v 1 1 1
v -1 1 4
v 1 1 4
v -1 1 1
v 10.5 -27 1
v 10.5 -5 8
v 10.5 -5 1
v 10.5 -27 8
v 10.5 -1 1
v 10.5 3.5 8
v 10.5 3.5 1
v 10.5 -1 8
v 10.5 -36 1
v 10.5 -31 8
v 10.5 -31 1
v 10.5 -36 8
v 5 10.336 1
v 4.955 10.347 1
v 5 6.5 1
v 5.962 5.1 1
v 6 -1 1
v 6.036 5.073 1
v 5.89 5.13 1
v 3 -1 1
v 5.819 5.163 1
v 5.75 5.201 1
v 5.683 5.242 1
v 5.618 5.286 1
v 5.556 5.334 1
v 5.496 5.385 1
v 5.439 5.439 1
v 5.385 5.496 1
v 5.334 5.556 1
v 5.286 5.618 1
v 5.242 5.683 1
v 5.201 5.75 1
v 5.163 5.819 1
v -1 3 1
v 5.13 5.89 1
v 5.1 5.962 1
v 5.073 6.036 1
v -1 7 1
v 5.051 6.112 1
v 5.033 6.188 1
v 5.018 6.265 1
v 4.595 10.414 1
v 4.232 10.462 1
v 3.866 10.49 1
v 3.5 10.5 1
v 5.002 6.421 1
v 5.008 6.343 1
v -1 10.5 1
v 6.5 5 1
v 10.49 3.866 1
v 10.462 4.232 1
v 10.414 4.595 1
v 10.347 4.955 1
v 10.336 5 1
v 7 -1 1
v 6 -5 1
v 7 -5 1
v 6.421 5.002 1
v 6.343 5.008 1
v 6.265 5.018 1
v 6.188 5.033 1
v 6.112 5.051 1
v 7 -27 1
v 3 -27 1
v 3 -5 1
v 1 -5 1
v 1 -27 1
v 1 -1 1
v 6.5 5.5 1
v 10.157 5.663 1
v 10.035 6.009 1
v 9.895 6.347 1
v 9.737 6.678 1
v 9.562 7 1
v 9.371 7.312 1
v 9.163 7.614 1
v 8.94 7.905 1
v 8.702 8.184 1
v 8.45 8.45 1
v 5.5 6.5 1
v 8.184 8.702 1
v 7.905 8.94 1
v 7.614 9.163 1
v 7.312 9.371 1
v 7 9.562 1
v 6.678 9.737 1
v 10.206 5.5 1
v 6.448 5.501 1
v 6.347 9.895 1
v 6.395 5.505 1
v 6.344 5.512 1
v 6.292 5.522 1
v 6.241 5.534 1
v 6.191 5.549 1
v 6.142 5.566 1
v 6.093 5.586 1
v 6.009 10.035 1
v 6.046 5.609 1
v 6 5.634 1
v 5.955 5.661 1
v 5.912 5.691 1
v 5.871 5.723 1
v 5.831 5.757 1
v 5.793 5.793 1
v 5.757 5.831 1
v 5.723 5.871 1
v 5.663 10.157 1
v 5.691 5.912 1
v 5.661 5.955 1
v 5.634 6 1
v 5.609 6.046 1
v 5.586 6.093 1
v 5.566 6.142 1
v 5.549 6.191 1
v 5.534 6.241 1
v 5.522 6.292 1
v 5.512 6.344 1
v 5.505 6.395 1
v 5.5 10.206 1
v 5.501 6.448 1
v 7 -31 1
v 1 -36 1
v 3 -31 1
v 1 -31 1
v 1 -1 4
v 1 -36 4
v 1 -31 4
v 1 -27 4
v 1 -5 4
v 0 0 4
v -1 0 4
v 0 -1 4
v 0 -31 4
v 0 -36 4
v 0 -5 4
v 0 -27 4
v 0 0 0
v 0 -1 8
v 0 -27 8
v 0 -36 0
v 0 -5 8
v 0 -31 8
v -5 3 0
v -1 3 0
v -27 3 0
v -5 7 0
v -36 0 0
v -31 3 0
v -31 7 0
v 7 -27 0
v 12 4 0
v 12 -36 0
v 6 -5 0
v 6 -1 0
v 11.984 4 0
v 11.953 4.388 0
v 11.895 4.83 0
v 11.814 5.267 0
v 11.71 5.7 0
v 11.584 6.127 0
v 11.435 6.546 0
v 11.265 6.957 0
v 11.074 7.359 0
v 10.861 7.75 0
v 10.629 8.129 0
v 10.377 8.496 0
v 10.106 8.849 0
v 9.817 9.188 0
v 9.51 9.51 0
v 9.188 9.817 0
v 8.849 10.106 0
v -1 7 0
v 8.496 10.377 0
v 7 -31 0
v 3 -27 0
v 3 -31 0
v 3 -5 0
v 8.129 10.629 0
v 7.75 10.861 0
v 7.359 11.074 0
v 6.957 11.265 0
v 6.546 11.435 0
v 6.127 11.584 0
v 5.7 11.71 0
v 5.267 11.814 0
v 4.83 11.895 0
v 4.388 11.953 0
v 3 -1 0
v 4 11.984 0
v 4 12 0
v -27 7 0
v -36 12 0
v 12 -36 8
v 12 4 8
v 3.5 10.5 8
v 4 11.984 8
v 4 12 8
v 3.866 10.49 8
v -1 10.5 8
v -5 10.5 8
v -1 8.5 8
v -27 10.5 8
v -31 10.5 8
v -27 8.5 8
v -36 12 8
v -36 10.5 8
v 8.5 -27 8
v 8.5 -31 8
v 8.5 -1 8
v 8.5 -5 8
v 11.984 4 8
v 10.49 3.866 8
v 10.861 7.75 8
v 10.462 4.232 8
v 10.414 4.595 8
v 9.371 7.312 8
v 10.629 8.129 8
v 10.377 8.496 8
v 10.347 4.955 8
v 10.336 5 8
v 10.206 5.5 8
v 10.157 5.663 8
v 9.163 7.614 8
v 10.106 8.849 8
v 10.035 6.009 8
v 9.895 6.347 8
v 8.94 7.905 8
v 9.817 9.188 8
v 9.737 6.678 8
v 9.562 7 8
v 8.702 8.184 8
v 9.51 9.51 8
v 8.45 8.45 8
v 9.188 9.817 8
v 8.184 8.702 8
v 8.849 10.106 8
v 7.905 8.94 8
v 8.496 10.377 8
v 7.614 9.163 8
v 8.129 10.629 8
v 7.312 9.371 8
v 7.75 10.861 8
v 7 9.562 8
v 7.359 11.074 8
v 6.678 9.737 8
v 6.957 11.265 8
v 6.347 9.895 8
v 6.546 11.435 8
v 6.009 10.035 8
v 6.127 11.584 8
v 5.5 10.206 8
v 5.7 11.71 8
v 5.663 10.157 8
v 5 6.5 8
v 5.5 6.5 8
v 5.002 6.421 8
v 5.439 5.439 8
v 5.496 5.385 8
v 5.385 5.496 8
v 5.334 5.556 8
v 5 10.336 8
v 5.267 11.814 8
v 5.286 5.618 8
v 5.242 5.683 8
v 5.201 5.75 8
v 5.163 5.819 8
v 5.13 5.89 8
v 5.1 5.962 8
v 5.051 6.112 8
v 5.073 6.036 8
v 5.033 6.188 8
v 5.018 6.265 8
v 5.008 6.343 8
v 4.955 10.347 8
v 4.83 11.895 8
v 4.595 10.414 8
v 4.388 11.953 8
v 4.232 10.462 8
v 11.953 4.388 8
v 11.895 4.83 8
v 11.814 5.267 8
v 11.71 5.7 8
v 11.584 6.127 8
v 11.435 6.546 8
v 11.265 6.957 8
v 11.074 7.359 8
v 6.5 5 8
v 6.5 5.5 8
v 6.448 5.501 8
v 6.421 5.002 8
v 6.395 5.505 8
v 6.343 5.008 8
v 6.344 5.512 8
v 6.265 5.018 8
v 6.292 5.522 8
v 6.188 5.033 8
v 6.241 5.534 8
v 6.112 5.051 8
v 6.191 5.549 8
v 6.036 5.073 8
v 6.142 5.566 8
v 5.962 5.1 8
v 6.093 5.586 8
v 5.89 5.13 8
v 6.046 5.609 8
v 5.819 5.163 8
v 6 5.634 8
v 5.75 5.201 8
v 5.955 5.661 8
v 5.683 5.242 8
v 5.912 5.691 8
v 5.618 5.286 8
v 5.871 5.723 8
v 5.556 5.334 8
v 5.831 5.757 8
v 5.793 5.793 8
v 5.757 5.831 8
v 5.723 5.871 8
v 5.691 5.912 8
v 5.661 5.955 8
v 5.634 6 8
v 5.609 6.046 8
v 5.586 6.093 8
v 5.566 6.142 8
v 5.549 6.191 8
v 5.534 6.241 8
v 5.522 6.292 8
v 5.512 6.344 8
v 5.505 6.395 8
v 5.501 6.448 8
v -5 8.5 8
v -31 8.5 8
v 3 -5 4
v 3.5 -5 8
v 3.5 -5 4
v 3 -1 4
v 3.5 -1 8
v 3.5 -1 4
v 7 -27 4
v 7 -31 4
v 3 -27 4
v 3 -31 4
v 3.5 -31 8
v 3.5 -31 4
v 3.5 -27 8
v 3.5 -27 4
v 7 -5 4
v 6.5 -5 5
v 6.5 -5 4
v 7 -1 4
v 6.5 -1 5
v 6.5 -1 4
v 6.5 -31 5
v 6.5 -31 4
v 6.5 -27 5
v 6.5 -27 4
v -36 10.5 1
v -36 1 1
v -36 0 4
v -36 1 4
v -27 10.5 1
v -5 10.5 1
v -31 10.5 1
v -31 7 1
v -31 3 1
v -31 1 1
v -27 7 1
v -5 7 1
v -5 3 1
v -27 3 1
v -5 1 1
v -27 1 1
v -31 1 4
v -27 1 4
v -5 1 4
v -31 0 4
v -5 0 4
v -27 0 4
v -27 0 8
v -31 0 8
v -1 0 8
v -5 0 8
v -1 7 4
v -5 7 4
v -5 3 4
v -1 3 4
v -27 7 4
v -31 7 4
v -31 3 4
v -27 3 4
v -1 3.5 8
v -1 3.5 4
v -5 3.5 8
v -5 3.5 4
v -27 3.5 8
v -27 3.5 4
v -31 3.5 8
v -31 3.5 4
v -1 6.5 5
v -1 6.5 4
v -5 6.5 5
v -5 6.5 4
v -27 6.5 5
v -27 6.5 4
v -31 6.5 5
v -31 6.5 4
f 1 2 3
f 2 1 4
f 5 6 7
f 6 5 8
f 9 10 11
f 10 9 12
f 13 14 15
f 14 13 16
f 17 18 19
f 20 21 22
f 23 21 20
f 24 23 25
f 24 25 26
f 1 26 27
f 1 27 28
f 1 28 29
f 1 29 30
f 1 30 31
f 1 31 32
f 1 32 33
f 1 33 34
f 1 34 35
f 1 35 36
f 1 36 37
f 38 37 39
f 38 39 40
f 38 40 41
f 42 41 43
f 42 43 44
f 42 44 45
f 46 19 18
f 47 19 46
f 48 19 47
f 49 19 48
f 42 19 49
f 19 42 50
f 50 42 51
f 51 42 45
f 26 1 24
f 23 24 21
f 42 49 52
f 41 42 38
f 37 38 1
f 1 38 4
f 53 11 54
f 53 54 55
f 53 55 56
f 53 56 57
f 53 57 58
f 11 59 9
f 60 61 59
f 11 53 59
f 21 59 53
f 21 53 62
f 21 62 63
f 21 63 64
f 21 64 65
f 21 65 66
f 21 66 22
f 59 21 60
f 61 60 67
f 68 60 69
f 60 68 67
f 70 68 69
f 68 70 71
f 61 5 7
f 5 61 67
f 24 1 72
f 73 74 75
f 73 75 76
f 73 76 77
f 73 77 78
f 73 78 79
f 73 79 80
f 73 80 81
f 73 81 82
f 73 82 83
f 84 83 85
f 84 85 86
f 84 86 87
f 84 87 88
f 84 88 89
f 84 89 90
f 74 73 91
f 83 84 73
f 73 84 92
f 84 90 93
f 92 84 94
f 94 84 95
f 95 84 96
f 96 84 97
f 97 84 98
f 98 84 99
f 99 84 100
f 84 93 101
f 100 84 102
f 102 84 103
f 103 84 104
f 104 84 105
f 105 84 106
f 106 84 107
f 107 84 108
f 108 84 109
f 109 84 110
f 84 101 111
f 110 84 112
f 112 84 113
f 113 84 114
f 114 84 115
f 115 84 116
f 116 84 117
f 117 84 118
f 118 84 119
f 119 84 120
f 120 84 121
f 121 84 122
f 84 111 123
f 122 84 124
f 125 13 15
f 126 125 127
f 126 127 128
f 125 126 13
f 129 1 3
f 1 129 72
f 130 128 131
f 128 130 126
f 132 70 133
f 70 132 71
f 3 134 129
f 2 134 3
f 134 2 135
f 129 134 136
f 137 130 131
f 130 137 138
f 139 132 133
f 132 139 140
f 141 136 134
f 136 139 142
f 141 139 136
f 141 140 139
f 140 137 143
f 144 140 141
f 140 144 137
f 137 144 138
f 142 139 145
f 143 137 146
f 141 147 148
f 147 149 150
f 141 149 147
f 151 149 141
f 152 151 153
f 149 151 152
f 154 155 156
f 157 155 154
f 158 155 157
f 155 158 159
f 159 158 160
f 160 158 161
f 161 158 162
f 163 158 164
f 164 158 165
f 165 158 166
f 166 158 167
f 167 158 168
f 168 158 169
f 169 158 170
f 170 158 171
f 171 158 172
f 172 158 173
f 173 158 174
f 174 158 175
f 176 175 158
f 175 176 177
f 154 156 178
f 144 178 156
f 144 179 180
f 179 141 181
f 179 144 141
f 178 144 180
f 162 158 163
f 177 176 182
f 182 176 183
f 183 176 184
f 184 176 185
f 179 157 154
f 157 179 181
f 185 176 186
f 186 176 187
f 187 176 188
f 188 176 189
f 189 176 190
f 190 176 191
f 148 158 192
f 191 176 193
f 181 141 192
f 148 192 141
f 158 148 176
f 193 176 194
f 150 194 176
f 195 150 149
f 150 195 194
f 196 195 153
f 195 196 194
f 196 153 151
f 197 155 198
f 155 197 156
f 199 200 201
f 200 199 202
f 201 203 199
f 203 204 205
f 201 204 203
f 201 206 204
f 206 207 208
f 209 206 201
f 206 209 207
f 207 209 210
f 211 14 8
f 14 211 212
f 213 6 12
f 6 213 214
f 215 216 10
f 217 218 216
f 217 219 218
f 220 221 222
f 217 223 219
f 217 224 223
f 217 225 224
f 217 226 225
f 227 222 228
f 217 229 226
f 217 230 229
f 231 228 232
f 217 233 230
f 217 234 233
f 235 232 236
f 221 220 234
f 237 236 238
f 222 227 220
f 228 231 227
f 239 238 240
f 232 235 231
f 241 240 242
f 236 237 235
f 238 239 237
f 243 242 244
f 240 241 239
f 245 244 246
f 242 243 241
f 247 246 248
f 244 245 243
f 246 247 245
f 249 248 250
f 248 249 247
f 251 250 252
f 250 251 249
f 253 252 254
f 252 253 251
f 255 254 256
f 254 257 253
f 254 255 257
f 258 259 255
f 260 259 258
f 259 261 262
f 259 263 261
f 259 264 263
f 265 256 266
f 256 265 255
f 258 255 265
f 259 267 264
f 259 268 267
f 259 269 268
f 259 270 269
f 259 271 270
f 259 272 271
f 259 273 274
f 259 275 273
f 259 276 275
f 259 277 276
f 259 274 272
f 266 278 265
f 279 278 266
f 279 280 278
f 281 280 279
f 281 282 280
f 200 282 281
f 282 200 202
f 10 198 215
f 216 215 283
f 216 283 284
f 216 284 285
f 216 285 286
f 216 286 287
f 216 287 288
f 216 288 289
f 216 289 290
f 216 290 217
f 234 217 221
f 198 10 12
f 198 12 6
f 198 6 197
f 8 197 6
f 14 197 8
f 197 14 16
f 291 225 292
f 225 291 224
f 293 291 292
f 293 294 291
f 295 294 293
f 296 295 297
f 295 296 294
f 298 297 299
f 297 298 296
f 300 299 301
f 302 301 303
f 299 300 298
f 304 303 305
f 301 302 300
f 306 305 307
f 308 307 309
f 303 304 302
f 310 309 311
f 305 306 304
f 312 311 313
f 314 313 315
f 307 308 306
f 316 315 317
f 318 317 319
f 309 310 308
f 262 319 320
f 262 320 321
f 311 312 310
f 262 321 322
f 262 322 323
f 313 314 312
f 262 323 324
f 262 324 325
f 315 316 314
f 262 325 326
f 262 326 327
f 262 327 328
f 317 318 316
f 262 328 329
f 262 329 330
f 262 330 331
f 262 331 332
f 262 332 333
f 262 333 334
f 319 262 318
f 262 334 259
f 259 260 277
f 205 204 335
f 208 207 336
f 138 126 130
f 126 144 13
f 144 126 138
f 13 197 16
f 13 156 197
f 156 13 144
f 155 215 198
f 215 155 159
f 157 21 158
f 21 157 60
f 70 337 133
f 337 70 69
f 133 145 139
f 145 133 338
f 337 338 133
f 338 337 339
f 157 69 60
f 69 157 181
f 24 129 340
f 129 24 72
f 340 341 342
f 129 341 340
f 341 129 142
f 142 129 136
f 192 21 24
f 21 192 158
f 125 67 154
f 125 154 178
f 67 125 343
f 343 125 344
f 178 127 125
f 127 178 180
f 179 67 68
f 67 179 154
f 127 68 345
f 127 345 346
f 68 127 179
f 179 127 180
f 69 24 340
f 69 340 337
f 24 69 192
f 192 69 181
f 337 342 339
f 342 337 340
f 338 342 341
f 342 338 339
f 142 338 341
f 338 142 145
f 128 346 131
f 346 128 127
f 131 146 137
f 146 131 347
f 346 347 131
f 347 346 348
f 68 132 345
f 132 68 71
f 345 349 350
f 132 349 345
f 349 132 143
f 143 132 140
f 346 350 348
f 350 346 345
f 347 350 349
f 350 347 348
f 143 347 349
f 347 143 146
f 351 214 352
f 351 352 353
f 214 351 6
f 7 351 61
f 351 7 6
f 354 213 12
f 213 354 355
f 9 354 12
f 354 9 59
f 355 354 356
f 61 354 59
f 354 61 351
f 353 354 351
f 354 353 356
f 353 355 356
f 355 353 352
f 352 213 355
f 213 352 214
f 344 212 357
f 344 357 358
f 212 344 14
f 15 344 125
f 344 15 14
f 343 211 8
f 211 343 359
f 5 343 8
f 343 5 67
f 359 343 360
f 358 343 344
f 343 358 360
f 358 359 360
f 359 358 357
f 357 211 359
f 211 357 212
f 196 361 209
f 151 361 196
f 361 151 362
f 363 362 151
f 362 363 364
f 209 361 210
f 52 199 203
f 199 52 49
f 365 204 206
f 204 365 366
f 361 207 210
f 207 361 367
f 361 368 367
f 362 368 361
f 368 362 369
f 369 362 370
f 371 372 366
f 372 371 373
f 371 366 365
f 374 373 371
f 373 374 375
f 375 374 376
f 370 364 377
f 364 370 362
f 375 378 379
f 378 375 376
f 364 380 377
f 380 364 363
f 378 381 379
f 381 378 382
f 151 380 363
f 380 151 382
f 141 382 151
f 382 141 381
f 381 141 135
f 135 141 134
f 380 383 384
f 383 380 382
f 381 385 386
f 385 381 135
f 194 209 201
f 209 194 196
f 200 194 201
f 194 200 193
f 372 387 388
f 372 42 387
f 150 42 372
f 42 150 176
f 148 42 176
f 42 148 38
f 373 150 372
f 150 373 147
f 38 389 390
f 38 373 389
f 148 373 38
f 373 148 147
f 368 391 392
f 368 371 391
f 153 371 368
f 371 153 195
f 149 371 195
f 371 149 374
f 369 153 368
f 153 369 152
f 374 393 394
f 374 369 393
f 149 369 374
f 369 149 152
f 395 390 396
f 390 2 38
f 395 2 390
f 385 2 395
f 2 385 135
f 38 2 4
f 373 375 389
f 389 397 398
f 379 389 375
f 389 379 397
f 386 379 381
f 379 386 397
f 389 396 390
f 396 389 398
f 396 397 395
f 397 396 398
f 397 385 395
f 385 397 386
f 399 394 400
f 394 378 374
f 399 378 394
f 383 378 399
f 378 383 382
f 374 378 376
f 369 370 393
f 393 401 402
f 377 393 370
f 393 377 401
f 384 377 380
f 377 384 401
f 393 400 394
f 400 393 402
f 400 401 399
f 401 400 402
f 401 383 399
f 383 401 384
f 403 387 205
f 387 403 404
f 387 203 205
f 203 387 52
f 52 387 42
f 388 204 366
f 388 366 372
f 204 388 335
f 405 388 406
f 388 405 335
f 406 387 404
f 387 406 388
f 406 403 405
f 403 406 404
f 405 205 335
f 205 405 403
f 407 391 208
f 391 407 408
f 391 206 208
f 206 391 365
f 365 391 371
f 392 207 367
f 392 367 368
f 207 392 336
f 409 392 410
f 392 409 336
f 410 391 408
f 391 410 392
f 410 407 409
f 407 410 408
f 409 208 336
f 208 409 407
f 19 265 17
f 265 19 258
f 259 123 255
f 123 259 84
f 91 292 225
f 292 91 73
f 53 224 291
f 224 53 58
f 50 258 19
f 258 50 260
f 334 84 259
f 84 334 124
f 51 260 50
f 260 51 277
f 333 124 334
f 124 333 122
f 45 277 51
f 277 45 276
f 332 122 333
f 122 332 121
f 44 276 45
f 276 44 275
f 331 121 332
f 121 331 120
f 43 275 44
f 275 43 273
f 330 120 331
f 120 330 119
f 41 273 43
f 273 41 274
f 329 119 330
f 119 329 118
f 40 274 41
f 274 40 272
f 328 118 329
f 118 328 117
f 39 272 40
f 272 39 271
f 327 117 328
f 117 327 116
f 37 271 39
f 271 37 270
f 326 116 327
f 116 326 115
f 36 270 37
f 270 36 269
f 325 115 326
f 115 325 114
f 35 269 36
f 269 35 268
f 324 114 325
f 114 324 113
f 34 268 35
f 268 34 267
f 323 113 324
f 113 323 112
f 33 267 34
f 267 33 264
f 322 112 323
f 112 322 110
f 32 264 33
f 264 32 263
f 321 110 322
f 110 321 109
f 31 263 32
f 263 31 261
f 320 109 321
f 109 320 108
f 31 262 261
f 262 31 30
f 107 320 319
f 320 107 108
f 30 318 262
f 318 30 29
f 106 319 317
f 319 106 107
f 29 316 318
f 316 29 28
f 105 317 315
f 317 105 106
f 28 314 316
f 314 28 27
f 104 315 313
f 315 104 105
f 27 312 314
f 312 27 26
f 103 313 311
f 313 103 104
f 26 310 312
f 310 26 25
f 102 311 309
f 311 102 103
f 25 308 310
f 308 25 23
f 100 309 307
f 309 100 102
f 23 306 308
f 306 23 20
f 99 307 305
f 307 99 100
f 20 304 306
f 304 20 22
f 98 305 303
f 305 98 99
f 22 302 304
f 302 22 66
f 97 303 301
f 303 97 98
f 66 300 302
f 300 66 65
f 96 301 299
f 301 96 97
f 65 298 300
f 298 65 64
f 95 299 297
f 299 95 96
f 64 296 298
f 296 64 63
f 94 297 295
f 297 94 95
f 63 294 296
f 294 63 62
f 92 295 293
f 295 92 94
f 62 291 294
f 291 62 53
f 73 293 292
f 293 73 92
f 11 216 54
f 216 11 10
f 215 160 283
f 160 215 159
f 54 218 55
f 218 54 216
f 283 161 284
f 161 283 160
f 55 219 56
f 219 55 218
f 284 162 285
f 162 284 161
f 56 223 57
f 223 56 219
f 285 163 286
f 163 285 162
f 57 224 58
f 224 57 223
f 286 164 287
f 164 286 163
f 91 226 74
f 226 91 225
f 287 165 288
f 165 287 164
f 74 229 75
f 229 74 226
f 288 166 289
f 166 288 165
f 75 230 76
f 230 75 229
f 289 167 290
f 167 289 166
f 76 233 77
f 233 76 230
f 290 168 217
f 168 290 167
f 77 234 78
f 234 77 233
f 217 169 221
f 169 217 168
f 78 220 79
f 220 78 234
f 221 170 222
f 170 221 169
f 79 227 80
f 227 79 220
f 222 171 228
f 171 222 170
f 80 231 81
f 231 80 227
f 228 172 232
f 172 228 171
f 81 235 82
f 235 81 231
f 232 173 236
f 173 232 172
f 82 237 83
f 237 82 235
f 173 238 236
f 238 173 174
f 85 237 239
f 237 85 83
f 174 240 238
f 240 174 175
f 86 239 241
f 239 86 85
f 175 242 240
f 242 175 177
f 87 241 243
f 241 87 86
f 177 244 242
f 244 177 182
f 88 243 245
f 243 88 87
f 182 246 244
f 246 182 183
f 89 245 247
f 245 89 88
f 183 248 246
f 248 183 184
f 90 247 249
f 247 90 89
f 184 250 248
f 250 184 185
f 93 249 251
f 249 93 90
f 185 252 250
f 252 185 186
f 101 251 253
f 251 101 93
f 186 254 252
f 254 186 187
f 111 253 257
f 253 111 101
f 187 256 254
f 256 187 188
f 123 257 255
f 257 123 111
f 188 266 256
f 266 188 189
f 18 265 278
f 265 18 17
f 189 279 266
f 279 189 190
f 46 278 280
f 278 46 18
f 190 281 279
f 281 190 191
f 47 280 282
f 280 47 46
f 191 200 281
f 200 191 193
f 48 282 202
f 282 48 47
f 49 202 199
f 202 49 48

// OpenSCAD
/*
File: coin_grille_cage_lapin.scad

Description:
Coin d'assemblage de deux grilles d'une cage à lapin.

Author: Nicolas Moteau (nicolas.moteau@orange.fr)
Version: 0.0.1
Date: 2021-09-19->26

License: [CC-BY-SA 4.0](https://creativecommons.org/licenses/by-sa/4.0/)
*/

$fn = 120; // 1st print at 120.

// w=width, H=Height, h=small height, T=thickness, t=little thickness
module side_profile_1(w=12, H=8, h=4, T=1.5, t=1) { 
  square([t, h]);
  square([w, t]);
  translate([w-t-0.5, 0, 0]) square([T, H]);
}

module side_profile_2(w=12, H=8, h=4, T=1.5, t=1) { 
  square([w, t]);
  translate([w-t-0.5, 0, 0]) square([T, H]);
}

module side_part_1(L=37) {
  linear_extrude(height=L) side_profile_1();
}
module side_part_2(L=3) {
  linear_extrude(height=L) side_profile_2();
}
module clips_1() {
  cube([3, 4, 4]);
  translate([0, 4, 0]) cube([3.5, 4, 4]);
}
module prism(l, w, h) { // from https://en.wikibooks.org/wiki/OpenSCAD_User_Manual/Primitive_Solids#polyhedron
  polyhedron(
    points=[[0,0,0], [l,0,0], [l,w,0], [0,w,0], [0,w,h], [l,w,h]],
    faces=[[0,1,2,3],[5,4,3,2],[0,4,5,1],[0,3,4],[5,2,1]]
  );
}
module clips_2() {
  translate([12-5, 0, 0]) cube([5, 4, 4]);
  translate([12-5.5, 4, 0]) cube([5.5, 1, 4]);
  translate([12-5.5, 5, 0]) rotate([-90, -90, 0]) prism(4, 2, 3);
  translate([12-3.5, 5, 0]) cube([2, 3, 4]);
}
module side_1(Length_part_1=37, Length_part_2=3) {
  difference() {
    translate([0, 0, -1]) union() {
      side_part_1(L=Length_part_1);
      translate([0, 0, -Length_part_2]) side_part_2(L=Length_part_2);
    }  
    translate([2, -1, 1]) cube(4); // square hole
    translate([3, -1, Length_part_1-10]) cube(4); // square hole
  }
  translate([0, 0, 1]) clips_1();
  translate([0, 0, Length_part_1-10]) clips_1();
  translate([0, 0, 1]) clips_2();
  translate([0, 0, Length_part_1-10]) clips_2();
}
module side_2(Length_part_1=37, Length_part_2=3) {
  difference() {
    translate([0, 0, 1]) union() {
      translate([0, 0, -Length_part_1]) side_part_1(L=Length_part_1);
      side_part_2(L=Length_part_2);
    }
    translate([3, -1, -5]) cube(4); // square hole
    translate([3, -1, -(Length_part_1 - 6)]) cube(4); // square hole
  }
  translate([0, 0, -5]) clips_1();
  translate([0, 0, -(Length_part_1-10+4)]) clips_1();
  translate([0, 0, -5]) clips_2();
  translate([0, 0, -(Length_part_1-10+4)]) clips_2();
}

module corner_profile() {
  translate([-1.5 - 7, 0, 0]) square([1.5, 8]);
  translate([-7, 0, 0]) square([7, 1]);
}
module corner() {
  translate([3.5, 3.5, 0]) rotate([0, 0, 180]) rotate_extrude(angle=90, convexity = 10)
    corner_profile();
}

module stopper_side_profile() {
  t = 0.5;
  h = 8;
  square([t, h]);
}
module stopper_side(L=4) {
  rotate([90, 0, 0]) linear_extrude(height=L) 
    stopper_side_profile(); 
}
module stopper_corner() {
  translate([5+1.5, 5+1.5, -1])
  rotate([0, 0, 180])
  rotate_extrude(angle=90, convexity = 15)
  translate([1, 1 , 0])
    stopper_side_profile();
}
module stopper() {
  translate([5, 12-1.5, 0]) stopper_side();
  translate([12-5.5, 5, 0]) rotate([0, 0, 90]) stopper_side();
  stopper_corner();
}

union() {
  rotate([90, 0, 0]) side_1();
  rotate([90, 0, 90]) side_2();
  corner();
  stopper();
}
 
